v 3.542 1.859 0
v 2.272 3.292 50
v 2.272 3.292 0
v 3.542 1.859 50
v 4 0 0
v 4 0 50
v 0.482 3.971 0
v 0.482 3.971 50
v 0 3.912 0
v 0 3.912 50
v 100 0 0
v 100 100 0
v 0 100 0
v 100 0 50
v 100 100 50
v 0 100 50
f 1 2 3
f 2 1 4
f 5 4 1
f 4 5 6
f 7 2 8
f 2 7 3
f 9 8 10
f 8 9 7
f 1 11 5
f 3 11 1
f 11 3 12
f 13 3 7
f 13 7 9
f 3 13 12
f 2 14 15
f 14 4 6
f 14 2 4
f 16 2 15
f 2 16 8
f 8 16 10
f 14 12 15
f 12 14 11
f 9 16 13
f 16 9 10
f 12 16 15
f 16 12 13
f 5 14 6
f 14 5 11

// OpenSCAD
module cube_tower(height, width, depth, rounds = 2) {
  difference() {
    cube([width, depth, height]);
    for (i = [0:height-1]) {
      translate([0, 0, i]) {
        cylinder(r = rounds, h = 1, center = false);
      }
    }
  }
}

cube_tower(height = 50, width = 100, depth = 100, rounds = 4);
